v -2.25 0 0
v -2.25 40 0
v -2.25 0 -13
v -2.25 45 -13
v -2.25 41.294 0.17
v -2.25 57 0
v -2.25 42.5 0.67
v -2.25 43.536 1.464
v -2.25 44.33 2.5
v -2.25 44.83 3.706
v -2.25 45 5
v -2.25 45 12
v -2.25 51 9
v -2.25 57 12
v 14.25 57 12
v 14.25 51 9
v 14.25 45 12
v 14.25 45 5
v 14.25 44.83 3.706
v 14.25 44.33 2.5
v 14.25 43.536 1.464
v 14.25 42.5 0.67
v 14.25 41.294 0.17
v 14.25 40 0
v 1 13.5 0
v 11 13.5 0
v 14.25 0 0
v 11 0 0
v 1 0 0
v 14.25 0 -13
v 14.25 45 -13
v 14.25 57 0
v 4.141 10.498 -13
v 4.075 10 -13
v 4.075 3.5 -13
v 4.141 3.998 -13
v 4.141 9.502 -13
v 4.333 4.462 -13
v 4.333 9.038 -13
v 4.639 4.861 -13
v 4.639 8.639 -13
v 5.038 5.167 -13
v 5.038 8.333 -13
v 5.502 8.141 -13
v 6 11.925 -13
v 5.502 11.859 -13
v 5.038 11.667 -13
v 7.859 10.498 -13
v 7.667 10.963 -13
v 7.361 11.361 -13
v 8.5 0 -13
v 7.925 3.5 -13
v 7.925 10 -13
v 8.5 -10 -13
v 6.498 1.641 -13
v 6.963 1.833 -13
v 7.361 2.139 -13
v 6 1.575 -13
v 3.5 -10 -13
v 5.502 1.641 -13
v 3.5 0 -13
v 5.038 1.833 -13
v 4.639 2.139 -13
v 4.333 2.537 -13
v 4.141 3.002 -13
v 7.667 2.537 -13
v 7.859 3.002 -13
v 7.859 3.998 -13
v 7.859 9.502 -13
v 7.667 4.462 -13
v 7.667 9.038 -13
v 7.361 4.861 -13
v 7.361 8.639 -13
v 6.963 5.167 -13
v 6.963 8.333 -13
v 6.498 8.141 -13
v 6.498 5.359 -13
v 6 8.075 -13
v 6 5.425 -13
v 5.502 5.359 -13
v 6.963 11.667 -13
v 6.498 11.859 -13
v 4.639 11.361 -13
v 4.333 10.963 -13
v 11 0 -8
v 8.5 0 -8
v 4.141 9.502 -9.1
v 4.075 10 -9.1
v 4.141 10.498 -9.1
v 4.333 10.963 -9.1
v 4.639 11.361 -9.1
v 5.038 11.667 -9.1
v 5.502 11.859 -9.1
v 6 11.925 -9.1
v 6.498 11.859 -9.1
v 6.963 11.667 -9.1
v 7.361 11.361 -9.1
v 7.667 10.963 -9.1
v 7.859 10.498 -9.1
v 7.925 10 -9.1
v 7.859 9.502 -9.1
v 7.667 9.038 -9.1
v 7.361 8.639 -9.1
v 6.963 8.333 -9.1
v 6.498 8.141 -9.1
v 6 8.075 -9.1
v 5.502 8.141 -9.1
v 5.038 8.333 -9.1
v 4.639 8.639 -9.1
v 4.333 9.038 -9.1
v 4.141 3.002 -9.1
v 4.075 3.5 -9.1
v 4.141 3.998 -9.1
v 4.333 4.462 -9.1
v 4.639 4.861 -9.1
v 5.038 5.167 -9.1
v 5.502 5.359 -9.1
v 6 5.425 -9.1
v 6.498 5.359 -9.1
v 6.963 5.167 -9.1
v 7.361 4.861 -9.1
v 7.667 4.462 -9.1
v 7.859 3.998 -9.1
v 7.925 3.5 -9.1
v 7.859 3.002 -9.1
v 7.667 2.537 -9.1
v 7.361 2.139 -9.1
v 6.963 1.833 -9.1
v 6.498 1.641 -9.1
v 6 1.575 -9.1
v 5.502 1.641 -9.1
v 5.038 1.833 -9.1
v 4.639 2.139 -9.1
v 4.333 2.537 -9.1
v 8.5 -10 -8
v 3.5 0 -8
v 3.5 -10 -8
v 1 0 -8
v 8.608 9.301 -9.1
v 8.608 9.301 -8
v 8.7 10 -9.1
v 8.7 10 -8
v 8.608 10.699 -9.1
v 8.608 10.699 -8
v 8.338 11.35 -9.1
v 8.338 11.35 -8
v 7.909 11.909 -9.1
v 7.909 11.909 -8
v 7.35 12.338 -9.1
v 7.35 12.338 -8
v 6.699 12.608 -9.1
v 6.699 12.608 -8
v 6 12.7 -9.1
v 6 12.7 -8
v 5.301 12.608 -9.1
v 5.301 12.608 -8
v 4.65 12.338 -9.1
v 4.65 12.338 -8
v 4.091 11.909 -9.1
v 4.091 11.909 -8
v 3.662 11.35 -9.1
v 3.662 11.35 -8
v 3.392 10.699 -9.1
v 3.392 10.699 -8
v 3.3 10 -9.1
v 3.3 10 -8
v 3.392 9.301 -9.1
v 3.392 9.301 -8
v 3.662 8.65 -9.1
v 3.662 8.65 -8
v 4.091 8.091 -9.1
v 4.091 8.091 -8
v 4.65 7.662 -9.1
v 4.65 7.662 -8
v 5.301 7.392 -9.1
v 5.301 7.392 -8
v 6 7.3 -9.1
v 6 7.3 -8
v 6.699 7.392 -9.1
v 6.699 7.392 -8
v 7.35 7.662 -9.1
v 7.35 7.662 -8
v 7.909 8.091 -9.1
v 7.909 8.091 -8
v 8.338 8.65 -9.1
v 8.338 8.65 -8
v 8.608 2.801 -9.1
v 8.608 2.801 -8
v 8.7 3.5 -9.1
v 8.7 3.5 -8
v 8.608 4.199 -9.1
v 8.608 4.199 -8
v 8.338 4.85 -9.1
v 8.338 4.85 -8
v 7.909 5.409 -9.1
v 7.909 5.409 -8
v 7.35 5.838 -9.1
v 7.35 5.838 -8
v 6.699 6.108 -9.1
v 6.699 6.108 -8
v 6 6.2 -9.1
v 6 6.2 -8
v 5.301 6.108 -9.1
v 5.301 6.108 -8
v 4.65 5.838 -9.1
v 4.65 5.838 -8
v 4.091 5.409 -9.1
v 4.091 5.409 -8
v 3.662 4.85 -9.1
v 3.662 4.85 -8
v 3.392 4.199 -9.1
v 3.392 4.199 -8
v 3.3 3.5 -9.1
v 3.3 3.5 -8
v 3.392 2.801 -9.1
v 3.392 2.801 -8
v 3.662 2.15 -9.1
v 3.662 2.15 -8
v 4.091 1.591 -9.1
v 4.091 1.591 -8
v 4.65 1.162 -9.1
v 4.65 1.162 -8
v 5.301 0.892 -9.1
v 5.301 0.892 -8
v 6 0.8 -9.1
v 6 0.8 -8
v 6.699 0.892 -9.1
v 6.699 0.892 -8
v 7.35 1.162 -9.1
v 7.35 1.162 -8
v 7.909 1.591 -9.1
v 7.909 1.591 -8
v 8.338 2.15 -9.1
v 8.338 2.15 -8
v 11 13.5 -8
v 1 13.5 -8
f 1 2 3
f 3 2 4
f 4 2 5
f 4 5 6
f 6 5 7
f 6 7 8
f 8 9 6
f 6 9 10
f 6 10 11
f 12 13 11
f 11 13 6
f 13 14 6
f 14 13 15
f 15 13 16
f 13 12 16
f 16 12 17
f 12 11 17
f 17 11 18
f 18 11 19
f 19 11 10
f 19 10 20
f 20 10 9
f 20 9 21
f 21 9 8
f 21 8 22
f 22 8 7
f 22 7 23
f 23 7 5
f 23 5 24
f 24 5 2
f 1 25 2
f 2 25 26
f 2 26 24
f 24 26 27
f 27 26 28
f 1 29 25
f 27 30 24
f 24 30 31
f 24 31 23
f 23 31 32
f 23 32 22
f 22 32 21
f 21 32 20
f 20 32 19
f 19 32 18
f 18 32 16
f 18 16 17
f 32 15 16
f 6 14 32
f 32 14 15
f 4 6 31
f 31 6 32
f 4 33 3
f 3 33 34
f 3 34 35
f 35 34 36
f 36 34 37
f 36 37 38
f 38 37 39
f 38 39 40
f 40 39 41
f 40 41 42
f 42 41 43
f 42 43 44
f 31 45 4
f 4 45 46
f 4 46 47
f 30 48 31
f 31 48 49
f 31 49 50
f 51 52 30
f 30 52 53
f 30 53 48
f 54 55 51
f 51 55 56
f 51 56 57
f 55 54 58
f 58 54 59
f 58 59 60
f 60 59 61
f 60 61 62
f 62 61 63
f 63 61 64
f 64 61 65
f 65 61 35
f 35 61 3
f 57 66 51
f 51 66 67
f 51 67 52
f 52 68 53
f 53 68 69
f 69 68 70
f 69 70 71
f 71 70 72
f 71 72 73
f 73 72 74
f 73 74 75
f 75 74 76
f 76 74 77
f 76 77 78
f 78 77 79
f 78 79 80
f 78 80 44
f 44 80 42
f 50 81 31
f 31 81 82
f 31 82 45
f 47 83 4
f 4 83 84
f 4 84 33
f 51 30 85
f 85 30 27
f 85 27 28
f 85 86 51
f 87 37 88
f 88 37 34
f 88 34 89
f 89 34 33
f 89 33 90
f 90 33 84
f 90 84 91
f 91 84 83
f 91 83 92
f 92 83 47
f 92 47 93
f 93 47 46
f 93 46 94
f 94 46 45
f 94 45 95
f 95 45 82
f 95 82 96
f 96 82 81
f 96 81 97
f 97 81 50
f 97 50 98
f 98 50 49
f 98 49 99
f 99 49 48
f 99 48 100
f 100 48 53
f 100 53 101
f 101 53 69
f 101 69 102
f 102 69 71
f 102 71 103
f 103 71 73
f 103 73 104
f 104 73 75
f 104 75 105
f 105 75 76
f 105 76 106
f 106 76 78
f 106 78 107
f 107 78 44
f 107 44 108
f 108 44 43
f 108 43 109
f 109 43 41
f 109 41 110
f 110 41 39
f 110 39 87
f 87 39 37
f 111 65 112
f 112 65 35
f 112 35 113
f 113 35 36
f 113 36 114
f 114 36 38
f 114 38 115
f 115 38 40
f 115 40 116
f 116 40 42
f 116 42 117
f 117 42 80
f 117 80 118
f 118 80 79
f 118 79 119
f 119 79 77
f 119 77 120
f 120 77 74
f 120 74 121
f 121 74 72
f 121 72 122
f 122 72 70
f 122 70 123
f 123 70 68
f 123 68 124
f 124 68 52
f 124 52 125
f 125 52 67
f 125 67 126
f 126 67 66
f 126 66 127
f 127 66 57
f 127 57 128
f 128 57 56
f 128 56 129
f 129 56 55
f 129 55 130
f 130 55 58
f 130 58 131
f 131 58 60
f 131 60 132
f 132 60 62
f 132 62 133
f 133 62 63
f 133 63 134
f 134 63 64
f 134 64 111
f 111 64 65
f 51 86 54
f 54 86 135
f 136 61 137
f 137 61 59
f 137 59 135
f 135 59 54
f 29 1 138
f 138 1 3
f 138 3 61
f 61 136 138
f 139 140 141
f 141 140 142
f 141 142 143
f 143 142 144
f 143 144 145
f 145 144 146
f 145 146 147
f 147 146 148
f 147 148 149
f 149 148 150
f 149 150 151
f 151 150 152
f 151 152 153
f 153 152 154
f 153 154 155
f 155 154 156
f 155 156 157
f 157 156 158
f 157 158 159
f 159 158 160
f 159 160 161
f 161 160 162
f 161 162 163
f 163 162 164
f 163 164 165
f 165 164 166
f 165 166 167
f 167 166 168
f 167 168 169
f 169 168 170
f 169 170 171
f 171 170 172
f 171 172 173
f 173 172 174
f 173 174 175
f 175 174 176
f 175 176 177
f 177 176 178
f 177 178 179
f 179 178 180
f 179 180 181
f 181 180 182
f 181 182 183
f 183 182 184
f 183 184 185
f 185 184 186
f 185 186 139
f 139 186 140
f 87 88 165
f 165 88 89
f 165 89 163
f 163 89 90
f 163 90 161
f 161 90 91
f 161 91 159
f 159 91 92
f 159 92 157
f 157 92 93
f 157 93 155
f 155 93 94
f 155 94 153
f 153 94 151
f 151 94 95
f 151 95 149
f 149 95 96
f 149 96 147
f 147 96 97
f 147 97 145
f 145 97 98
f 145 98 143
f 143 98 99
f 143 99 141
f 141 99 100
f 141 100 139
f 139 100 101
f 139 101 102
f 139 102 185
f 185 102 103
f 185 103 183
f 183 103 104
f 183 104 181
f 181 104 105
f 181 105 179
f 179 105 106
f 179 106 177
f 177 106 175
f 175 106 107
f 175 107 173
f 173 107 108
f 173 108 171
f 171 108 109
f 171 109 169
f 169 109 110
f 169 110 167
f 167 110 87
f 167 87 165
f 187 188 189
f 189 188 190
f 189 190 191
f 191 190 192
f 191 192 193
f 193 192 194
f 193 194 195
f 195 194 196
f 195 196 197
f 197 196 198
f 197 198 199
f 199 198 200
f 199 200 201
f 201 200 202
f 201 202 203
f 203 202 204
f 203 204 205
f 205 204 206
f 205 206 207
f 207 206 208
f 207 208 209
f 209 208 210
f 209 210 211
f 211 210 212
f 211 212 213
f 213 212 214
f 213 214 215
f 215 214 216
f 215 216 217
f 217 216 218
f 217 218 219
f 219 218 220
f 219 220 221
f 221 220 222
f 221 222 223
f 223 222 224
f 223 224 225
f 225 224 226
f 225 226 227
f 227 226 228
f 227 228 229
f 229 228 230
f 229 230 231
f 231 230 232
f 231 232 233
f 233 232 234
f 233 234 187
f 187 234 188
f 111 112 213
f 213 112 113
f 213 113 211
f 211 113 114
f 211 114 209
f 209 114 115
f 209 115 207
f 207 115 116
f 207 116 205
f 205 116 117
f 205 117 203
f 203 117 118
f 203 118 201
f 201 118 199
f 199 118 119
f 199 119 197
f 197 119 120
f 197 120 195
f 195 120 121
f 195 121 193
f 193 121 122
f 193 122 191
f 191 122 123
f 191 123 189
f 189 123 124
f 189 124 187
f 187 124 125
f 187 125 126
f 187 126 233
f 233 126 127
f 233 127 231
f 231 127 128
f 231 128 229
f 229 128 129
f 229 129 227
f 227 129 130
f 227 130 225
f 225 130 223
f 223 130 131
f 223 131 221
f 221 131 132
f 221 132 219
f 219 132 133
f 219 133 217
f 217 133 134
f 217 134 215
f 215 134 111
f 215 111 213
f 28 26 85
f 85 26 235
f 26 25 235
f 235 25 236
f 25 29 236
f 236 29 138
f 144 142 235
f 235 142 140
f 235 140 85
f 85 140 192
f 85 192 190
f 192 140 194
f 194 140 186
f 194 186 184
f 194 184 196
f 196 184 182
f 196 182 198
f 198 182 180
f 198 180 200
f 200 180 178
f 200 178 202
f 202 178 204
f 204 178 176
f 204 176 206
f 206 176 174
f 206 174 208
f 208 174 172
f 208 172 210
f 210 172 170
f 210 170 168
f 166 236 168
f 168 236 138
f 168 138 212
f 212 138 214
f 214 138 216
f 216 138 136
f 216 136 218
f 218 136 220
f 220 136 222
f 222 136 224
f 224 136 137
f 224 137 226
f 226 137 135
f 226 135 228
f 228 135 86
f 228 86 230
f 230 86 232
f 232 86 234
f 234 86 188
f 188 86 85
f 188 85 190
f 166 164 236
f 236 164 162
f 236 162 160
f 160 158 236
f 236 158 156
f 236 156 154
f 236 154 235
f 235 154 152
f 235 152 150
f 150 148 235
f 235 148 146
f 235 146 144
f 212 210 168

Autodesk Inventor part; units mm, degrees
ref_plane "YZ Plane" through (0, 0, 0) normal (1, 0, 0) x (0, 1, 0)
sketch "Sketch2" plane through (0, 0, 0) normal (1, 0, 0) x (0, 1, 0)
  line L0 (0, 0) -> (15, 0)
  line L1 (15, 0) -> (15, -10)
  line L2 (15, -10) -> (0, -10)
  line L3 (0, -10) -> (0, 0)
  dimension "d4" = 15
  dimension "d5" = 10
extrude "Extrusion2" add sketch "Sketch2" along normal blind 12
sketch "Sketch3" plane through (0, 0, 0) normal (0, 0, 1) x (1, 0, 0)
  line L0 (0, 0) -> (1, 0)
  line L1 (0, 0) -> (12, 0) projected
  line L2 (1, 0) -> (1, 13.5)
  line L3 (1, 13.5) -> (11, 13.5)
  line L4 (11, 13.5) -> (11, 0)
  line L5 (11, 0) -> (1, 0)
  dimension "d8" = 1
  dimension "d9" = 13.5
  dimension "d10" = 10
extrude "Extrusion3" cut sketch "Sketch3" against normal blind 8
sketch "Sketch4" plane through (0, 0, -10) normal (0, 0, -1) x (-1, 0, 0)
  line L0 (0, 15) -> (-12, 15) projected
  line L1 (0, 0) -> (-12, 0) projected
  line L2 (-12, 15) -> (0, 15)
  line L3 (0, 15) -> (0, 0)
  line L4 (0, 0) -> (-12, 0)
  line L5 (-12, 0) -> (-12, 15)
extrude "Extrusion4" add sketch "Sketch4" along normal blind 2
sketch "Sketch5" plane through (0, 0, -8) normal (0, 0, 1) x (1, 0, 0)
  line L0 (1, 13.5) -> (11, 13.5) projected
  line L1 (6, 13.5) -> (6, 10)
  line L2 (6, 10) -> (6, 3.5)
  circle A0 centre (6, 10) radius 1.2295
  circle A1 centre (6, 3.5) radius 1.2295
  point P0 (0, 0)
  dimension "d15" = 3.5
  dimension "d16" = 6.5
  dimension "d17" = 2.459
  dimension "d18" = 2.459
extrude "Extrusion5" cut sketch "Sketch5" against normal blind 4
sketch "Sketch6" plane through (0, 0, -8) normal (0, 0, 1) x (1, 0, 0)
  circle A0 centre (6, 10) radius 1.2295 projected
  circle A1 centre (6, 10) radius 2.7
  circle A2 centre (6, 3.5) radius 1.2295 projected
  circle A3 centre (6, 3.5) radius 2.7
  point P0 (0, 0)
  dimension "d21" = 5.4
  dimension "d22" = 5.4
extrude "Extrusion6" cut sketch "Sketch6" against normal blind 1.1
sketch "Sketch15" plane through (12, 0, 0) normal (1, 0, 0) x (0, 0, -1)
  line L0 (0, 15) -> (12, 15) projected
  line L1 (12, 15) -> (12, 0) projected
  line L2 (0, 15) -> (12, 15)
  line L3 (12, 15) -> (12, 0)
  line L4 (12, 0) -> (0, 0)
  line L5 (0, 0) -> (0, 15)
extrude "Extrusion14" add sketch "Sketch15" along normal blind 4
ref_plane "Work Plane1" through (6, 0, 0) normal (1, 0, 0) x (0, 0, -1)
mirror "Mirror1" about plane through (6, 0, 0) normal (1, 0, 0) of "Extrusion14"
sketch "Sketch16" plane through (1, 0, -8) normal (0, -1, 0) x (1, 0, 0)
  line L0 (10, 0) -> (0, 0) projected
  line L1 (5, 0) -> (7.5, 0)
  line L2 (7.5, 0) -> (7.5, -4)
  line L3 (-5, -4) -> (15, -4) projected
  line L4 (7.5, -4) -> (2.5, -4)
  line L5 (2.5, -4) -> (2.5, 0)
  line L6 (2.5, 0) -> (5, 0)
  point P0 (-1, 8)
  dimension "d61" = 2.5
  dimension "d62" = 4
  dimension "d63" = 5
  dimension "d64" = 4
extrude "Extrusion15" add sketch "Sketch16" along normal blind 10
sketch "Sketch18" plane through (0, 0, -12) normal (0, 0, -1) x (-1, 0, 0)
  line L0 (-16, 15) -> (4, 15) projected
  line L1 (4, 0) -> (-3.5, 0) projected
  line L2 (-16, 15) -> (4, 15)
  line L3 (4, 15) -> (4, 0)
  line L4 (4, 0) -> (-16, 0)
  line L5 (-16, 0) -> (-16, 15)
  line L6 (-8.5, -10) -> (-3.5, -10) projected
  line L7 (-3.5, 0) -> (-8.5, 0)
  line L8 (-8.5, 0) -> (-8.5, -10)
  line L9 (-8.5, -10) -> (-3.5, -10)
  line L10 (-3.5, -10) -> (-3.5, 0)
  circle A0 centre (-6, 3.5) radius 1.2295 projected
  circle A1 centre (-6, 3.5) radius 1.2295
  circle A2 centre (-6, 10) radius 1.2295 projected
  circle A3 centre (-6, 10) radius 1.2295
  point P0 (0, 0)
extrude "Extrusion16" add sketch "Sketch18" along normal blind 1
sketch "Sketch19" plane through (16, 0, 0) normal (1, 0, 0) x (0, 0, -1)
  line L0 (0, 15) -> (13, 15) projected
  line L1 (0, 15) -> (0, 40)
  line L2 (-5, 45) -> (-12, 45)
  line L3 (13, 45) -> (13, 15)
  line L4 (0, 57) -> (-12, 57)
  line L5 (0, 57) -> (13, 45)
  line L6 (-9, 51) -> (-12, 57)
  line L7 (-9, 51) -> (-12, 45)
  arc A0 (0, 40) -> (-5, 45) centre (-5, 40) ccw
  point P0 (0, 0)
  point P1 (0, 45)
  dimension "d69" = 30
  dimension "d75" = 5
extrude "Extrusion17" add sketch "Sketch19" against normal blind 20
sketch "Sketch20" plane through (0, 0, -13) normal (0, 0, -1) x (-1, 0, 0)
  circle A0 centre (-6, 10) radius 1.2295 projected
  circle A1 centre (-6, 10) radius 1.925
  circle A2 centre (-6, 3.5) radius 1.2295 projected
  circle A3 centre (-6, 3.5) radius 1.925
  point P0 (0, 0)
  dimension "d80" = 3.85
  dimension "d81" = 3.85
extrude "Extrusion18" cut sketch "Sketch20" against normal blind 10
sketch "Sketch22" plane through (16, 0, 0) normal (1, 0, 0) x (0, 0, -1)
  line L0 (0, 57) -> (-12, 57) projected
  line L1 (-12, 57) -> (0, 57)
  line L2 (13, 45) -> (0, 57) projected
  line L3 (0, 57) -> (13, 45)
  line L4 (13, 0) -> (13, 45) projected
  line L5 (13, 45) -> (13, 0)
  line L6 (0, 0) -> (8, 0) projected
  line L7 (13, 0) -> (0, 0)
  line L8 (0, 40) -> (0, 0) projected
  line L9 (0, 0) -> (0, 40)
  line L10 (-12, 45) -> (-5, 45) projected
  line L11 (-5, 45) -> (-12, 45)
  line L12 (-12, 45) -> (-9, 51) projected
  line L13 (-12, 45) -> (-9, 51)
  line L14 (-12, 57) -> (-9, 51) projected
  line L15 (-9, 51) -> (-12, 57)
  arc A0 (0, 40) -> (-5, 45) centre (-5, 40) ccw
extrude "Extrusion20" cut sketch "Sketch22" against normal blind 1.75
ref_plane "Work Plane2" through (6, 0, 0) normal (-1, 0, 0) x (0, 0, 1)
mirror "Mirror2" about plane through (6, 0, 0) normal (-1, 0, 0) of "Extrusion20"
properties part number "3point finger"
